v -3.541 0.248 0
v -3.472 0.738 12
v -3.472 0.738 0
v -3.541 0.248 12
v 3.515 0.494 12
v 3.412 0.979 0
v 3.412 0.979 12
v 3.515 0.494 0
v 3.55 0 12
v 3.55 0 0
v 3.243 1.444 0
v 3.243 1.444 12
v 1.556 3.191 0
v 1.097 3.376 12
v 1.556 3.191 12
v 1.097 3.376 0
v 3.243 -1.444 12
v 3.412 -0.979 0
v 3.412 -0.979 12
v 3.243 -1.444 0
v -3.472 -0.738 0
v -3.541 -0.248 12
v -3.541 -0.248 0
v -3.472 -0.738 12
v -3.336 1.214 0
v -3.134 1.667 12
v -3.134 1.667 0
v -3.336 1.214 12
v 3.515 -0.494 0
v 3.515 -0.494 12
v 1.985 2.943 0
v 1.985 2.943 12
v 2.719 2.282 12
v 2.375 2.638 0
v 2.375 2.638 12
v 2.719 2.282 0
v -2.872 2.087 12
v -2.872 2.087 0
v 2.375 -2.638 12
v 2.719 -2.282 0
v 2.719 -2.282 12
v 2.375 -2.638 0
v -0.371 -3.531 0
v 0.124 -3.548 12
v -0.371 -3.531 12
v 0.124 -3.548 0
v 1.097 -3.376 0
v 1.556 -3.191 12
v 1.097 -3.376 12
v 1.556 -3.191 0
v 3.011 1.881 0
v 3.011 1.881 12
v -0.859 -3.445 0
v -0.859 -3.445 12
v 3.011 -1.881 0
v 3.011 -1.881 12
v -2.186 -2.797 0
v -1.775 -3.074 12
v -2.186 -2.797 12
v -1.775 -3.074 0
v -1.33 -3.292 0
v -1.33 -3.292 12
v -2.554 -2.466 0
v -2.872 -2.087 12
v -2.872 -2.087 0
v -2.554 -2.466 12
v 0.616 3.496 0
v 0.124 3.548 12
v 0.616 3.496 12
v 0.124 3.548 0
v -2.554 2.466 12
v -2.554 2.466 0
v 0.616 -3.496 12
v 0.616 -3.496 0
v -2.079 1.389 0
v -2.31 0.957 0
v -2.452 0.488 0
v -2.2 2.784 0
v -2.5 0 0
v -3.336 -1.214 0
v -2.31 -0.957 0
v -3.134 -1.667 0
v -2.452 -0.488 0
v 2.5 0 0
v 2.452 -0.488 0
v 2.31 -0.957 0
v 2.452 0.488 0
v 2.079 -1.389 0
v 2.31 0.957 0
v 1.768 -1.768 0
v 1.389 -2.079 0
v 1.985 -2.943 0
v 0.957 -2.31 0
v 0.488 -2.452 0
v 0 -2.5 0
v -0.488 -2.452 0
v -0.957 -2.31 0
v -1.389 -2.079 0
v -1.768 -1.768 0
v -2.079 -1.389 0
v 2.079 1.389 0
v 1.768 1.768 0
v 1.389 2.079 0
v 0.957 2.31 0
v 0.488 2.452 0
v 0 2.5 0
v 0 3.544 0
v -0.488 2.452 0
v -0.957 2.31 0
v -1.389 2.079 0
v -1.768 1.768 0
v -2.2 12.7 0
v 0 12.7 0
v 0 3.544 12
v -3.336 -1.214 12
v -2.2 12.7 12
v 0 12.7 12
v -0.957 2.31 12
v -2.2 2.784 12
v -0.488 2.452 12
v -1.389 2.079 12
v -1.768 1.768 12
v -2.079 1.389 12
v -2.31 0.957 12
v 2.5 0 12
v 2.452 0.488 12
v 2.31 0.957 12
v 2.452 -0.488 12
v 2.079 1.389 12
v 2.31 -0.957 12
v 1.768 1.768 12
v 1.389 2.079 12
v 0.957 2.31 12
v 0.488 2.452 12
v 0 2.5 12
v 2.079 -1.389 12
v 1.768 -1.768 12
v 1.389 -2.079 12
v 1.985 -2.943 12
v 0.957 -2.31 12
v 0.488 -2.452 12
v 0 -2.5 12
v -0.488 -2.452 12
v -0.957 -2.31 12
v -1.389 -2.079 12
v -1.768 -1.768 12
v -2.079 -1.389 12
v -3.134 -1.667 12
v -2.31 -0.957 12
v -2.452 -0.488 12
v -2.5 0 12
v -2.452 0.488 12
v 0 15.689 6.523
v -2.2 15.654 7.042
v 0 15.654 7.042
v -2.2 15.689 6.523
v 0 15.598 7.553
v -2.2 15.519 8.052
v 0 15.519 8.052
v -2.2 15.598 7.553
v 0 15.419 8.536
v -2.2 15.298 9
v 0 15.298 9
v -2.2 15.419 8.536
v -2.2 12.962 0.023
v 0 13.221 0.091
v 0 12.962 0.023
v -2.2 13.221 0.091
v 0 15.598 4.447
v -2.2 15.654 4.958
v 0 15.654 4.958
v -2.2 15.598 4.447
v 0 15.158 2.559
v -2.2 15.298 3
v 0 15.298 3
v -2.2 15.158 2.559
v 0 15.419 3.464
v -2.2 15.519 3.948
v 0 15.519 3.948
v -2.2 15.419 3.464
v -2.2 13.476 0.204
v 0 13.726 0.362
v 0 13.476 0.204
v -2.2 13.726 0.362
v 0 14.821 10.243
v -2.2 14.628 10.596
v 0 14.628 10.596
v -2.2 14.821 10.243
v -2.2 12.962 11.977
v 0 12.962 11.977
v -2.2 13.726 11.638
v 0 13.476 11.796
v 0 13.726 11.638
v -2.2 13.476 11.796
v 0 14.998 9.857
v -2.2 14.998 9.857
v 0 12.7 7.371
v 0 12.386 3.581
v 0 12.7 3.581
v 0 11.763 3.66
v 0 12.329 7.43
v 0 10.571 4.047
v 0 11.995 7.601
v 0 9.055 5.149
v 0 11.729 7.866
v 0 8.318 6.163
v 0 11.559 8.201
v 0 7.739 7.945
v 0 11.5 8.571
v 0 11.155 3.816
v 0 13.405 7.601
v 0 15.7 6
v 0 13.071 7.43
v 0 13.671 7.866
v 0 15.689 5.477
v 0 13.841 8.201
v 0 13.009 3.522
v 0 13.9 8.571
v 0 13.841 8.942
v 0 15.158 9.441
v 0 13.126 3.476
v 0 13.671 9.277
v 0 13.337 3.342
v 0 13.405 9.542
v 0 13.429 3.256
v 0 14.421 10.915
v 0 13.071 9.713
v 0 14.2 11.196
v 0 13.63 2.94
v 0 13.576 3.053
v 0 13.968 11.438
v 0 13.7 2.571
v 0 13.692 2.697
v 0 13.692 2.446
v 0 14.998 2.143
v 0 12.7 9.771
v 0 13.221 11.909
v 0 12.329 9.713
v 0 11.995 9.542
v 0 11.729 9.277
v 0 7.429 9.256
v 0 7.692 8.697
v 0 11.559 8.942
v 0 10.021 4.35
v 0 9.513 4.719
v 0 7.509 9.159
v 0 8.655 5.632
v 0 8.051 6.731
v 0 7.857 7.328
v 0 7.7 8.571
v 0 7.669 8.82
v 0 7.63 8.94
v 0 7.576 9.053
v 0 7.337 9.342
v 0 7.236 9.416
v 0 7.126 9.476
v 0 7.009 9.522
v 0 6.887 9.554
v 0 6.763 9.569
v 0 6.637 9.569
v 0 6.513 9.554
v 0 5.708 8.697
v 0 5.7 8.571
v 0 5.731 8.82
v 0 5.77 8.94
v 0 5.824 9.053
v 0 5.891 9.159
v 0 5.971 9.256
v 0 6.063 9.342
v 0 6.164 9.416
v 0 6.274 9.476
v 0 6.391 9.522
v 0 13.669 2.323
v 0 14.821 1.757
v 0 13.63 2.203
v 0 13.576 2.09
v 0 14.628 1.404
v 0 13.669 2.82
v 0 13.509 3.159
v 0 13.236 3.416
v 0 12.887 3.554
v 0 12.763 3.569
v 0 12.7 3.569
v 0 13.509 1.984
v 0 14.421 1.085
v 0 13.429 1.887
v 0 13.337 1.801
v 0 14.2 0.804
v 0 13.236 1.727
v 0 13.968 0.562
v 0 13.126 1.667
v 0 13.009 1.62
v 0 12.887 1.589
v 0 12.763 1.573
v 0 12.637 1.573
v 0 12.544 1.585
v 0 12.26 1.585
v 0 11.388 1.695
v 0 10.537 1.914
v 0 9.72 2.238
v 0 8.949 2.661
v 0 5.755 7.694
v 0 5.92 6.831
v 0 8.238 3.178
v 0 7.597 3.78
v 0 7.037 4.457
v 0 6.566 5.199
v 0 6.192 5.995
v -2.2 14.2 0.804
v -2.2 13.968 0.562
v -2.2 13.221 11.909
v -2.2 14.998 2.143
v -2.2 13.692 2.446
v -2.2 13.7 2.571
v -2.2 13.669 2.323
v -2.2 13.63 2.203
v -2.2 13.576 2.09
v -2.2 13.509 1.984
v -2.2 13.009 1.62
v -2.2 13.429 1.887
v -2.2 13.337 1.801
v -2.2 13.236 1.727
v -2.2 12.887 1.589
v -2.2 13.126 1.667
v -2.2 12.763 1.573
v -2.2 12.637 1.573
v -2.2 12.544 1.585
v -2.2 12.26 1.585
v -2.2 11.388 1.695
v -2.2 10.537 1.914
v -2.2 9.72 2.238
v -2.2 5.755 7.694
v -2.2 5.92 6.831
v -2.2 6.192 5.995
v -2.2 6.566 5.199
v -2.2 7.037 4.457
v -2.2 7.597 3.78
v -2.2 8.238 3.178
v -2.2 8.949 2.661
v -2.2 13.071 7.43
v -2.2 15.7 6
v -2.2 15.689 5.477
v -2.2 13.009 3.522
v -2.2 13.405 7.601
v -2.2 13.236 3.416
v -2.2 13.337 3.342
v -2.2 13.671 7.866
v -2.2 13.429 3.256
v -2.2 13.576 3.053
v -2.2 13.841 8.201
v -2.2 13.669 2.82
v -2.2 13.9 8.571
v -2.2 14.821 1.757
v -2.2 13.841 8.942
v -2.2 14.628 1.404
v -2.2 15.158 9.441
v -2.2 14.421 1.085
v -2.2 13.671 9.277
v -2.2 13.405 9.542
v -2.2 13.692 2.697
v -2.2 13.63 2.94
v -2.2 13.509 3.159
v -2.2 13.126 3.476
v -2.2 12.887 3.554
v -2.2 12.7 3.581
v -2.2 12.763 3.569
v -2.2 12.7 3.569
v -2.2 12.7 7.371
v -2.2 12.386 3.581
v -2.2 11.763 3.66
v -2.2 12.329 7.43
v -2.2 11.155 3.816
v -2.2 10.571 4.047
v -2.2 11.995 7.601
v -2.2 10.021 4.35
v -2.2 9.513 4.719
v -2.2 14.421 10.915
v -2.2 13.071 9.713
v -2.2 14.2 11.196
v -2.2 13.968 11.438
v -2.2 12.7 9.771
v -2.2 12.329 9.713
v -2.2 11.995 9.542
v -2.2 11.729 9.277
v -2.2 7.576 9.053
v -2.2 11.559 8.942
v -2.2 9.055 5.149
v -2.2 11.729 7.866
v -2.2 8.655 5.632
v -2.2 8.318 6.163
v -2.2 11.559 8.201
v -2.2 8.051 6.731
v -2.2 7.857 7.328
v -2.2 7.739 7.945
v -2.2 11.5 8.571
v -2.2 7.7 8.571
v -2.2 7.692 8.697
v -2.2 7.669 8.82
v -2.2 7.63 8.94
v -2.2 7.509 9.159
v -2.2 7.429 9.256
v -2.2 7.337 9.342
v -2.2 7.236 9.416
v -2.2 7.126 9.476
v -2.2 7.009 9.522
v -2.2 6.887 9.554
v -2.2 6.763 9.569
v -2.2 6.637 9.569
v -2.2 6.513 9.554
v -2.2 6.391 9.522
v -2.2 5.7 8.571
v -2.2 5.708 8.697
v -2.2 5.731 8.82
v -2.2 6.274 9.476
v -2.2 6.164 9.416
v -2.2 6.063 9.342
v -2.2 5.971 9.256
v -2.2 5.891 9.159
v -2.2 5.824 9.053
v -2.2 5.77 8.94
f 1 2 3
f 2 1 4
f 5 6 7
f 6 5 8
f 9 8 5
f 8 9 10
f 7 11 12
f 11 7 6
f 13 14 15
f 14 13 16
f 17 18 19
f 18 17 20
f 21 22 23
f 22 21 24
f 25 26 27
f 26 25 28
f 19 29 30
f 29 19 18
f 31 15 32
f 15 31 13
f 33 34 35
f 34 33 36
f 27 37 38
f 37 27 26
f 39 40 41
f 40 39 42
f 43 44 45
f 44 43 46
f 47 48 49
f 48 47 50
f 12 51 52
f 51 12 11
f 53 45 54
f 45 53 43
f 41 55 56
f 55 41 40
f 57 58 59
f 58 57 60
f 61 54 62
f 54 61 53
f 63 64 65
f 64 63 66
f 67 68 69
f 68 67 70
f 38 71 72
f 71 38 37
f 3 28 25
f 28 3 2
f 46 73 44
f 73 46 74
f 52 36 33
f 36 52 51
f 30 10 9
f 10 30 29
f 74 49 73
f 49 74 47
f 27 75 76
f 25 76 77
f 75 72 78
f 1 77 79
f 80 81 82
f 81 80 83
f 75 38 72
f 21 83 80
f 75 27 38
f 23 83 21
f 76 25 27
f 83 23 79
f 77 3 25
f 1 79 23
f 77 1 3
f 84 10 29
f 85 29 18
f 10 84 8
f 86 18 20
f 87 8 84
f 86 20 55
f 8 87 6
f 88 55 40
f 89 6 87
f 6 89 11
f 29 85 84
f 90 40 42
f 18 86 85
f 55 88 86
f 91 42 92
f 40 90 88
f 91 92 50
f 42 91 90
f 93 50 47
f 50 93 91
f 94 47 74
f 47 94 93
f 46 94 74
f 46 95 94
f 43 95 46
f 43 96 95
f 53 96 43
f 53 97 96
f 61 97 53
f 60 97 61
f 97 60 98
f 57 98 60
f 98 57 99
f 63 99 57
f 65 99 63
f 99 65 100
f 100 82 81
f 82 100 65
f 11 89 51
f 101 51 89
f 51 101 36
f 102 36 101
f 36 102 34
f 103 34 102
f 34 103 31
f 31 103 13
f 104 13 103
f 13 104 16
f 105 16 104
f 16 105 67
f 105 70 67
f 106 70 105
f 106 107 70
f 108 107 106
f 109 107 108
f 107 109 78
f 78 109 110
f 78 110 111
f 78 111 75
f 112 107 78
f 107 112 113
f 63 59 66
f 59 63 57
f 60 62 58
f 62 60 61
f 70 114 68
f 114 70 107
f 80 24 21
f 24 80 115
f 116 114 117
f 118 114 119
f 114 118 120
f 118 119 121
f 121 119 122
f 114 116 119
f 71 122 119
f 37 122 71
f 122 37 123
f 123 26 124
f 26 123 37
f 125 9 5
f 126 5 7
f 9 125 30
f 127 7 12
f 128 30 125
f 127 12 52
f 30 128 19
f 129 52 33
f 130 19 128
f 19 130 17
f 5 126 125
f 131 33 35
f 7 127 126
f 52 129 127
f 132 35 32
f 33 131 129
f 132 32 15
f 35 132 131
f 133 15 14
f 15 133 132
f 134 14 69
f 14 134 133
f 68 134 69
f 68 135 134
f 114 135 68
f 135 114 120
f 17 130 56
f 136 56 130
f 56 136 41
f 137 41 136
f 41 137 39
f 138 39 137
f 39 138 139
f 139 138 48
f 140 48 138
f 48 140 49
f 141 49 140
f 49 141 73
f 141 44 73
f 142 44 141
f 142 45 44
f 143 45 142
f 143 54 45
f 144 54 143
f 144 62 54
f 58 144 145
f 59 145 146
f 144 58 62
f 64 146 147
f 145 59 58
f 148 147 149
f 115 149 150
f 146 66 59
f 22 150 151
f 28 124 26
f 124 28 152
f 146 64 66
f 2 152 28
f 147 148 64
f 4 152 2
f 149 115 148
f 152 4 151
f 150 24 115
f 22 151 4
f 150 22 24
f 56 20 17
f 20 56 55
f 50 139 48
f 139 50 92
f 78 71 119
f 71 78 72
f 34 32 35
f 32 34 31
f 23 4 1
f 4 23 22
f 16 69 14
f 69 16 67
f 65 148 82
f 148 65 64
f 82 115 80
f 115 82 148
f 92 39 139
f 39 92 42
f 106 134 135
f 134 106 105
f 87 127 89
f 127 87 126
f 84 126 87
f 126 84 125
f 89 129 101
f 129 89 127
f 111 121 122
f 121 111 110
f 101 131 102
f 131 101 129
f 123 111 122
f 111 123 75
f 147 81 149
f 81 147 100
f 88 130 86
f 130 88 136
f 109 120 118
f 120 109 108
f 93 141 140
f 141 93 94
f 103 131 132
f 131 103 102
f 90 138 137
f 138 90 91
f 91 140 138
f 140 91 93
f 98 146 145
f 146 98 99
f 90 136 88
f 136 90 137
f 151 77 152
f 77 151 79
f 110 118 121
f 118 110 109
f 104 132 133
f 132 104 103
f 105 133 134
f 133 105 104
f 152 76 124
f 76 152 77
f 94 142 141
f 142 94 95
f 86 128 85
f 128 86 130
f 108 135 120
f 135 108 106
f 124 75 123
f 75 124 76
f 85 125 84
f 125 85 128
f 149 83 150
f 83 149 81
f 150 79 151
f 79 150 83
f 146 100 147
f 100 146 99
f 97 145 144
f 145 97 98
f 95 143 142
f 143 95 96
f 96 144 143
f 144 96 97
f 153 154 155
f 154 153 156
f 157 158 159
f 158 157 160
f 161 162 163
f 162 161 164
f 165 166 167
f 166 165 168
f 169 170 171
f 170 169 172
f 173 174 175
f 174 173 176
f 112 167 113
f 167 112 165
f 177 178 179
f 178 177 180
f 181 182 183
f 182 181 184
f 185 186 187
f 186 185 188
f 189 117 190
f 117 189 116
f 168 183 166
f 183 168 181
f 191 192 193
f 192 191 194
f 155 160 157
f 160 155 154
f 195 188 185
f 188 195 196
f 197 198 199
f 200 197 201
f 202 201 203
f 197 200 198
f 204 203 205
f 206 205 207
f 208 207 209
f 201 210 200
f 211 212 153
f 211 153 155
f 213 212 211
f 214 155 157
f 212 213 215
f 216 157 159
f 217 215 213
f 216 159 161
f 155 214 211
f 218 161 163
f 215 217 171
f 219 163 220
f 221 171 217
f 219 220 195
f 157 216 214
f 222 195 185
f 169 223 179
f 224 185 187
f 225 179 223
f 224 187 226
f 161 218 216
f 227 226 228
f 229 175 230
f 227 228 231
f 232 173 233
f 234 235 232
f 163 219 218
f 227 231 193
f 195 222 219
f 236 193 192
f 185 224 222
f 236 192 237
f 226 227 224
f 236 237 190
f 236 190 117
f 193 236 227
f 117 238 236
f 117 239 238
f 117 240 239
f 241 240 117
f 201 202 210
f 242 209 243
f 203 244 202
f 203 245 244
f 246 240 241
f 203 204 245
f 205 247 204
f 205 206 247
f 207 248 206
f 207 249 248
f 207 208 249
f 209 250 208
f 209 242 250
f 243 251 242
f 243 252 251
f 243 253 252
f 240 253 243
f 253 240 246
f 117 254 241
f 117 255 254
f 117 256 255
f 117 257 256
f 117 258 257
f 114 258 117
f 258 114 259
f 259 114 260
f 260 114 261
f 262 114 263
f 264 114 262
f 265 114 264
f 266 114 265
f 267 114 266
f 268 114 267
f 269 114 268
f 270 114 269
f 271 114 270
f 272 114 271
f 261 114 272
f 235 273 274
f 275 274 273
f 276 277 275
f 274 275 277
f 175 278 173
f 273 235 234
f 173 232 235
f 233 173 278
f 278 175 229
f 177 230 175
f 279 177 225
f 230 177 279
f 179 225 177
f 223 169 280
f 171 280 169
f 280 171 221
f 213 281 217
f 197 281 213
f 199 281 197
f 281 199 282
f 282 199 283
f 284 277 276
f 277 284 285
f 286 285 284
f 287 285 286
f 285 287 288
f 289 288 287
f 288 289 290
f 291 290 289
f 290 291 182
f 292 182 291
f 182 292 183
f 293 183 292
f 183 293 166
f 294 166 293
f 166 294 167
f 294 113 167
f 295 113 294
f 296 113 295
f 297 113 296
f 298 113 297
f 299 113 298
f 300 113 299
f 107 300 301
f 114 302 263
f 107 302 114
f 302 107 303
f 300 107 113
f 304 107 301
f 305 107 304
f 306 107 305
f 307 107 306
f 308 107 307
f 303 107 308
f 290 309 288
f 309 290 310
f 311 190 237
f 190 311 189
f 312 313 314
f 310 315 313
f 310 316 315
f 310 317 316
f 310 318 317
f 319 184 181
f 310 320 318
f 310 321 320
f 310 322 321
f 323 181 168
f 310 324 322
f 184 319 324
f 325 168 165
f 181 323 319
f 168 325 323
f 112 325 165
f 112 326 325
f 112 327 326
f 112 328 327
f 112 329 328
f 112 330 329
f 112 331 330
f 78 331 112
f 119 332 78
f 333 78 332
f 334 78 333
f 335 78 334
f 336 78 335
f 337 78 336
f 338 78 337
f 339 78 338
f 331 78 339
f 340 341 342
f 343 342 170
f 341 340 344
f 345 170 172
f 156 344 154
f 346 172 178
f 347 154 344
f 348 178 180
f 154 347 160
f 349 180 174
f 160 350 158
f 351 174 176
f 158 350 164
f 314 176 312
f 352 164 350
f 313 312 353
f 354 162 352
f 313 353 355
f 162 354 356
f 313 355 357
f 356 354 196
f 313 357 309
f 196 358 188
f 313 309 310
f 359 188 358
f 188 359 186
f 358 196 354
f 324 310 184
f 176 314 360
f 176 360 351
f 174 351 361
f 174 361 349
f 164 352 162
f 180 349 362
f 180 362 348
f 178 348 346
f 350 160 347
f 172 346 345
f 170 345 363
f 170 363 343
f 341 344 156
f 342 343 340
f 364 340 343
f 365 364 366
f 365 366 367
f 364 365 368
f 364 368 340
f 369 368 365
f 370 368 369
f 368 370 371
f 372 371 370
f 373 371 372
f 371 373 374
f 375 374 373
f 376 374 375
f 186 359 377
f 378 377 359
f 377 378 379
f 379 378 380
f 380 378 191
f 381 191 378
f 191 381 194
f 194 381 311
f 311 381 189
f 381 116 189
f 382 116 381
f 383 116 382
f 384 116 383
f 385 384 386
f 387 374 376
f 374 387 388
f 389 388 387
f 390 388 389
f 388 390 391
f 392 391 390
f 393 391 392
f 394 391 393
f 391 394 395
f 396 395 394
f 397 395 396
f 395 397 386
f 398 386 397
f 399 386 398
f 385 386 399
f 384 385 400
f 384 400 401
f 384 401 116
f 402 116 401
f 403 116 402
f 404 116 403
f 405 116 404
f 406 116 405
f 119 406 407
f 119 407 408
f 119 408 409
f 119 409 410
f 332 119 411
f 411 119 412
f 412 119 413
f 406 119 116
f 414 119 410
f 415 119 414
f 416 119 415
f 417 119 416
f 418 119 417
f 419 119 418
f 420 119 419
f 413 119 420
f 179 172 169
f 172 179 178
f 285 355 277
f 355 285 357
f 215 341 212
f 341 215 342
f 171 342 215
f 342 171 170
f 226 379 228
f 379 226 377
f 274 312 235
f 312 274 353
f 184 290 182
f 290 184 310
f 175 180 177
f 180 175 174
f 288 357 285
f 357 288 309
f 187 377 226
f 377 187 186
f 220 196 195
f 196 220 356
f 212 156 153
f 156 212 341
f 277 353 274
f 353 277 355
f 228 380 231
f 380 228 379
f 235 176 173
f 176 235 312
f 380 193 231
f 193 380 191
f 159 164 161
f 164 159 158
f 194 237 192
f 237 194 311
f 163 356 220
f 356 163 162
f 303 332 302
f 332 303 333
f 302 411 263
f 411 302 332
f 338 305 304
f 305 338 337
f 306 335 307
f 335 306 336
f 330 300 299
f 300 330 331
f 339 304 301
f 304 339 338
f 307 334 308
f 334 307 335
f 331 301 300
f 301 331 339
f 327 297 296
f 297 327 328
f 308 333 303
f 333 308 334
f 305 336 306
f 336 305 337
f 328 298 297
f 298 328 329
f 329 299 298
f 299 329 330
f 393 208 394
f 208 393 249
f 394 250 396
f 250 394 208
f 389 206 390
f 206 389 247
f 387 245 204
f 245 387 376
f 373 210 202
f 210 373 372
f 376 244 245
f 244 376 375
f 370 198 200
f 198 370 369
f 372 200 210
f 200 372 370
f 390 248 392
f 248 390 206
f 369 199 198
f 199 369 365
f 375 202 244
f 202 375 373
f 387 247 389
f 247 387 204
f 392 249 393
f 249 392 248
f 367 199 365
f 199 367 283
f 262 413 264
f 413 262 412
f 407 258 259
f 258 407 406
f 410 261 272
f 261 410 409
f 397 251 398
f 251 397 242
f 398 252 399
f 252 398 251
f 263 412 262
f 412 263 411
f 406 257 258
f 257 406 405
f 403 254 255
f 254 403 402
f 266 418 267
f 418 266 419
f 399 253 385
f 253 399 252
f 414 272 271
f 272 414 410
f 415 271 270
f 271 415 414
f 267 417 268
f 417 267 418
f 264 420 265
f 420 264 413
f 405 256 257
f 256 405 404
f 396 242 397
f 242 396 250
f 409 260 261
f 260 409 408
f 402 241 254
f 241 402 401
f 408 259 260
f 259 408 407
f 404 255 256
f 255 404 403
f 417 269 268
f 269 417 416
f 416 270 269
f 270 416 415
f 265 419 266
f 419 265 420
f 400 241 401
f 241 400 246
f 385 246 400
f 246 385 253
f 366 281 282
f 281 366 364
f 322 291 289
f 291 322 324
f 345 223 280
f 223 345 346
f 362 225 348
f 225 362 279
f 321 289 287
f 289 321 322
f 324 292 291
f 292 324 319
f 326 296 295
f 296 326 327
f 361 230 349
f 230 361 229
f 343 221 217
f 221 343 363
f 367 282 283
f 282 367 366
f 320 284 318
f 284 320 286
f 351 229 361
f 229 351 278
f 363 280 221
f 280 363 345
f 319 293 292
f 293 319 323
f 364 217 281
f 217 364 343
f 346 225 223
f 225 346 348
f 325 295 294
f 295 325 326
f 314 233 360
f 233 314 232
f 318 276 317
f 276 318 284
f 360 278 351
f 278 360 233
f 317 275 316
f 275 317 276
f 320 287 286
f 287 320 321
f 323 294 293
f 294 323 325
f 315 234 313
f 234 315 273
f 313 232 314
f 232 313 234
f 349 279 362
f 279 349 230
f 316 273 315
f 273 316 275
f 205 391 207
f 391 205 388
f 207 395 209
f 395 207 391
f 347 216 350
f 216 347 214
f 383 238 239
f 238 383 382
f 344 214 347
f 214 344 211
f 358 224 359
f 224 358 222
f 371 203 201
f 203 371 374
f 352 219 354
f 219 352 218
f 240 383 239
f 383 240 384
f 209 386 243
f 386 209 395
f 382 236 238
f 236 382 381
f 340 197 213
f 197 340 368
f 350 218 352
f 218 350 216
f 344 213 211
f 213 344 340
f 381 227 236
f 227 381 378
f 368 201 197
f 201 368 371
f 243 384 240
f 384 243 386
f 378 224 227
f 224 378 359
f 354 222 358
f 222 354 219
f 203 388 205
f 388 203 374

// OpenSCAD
// file: fpv_camera_mount.scad
module fpv_camera_mount_arc(depth, screwwidth, radius = 6)
{
	res = $preview ? 10 : 50;
	intersection() {
		outrad = screwwidth / 2 + radius;
		inrad = radius - screwwidth / 2;
		difference() {
			cylinder(depth, r = outrad, $fn = res);
			cylinder(depth, r = inrad, $fn = res);
		}
		arcextend = screwwidth / 2;
		cube([outrad + arcextend, outrad + arcextend, depth]);
	}
	translate([radius, 0, 0]) cylinder(depth, r = screwwidth / 2, $fn = res);
	translate([0, radius, 0]) cylinder(depth, r = screwwidth / 2, $fn = res);
}

module fpv_camera_mount_hole(depth, screwwidth = 2)
{
	res = $preview ? 10 : 20;
	cylinder(depth, r = screwwidth * 1.2 / 2, $fn = res);
}

module fpv_camera_mount(depth, screwwidth = 2)
{
	fpv_camera_mount_full_6mm(depth, screwwidth);
	rotate([0, 0, 160]) fpv_camera_mount_half_9mm(depth, screwwidth);
}

module fpv_camera_mount_full(depth, screwwidth = 2)
{
	fpv_camera_mount_full_6mm(depth, screwwidth);
	fpv_camera_mount_full_9mm(depth, screwwidth);
}

module fpv_camera_mount_half_6mm(depth, screwwidth = 2)
{
	fpv_camera_mount_hole(depth, screwwidth);
	fpv_camera_mount_arc(depth, screwwidth, 6);
}

module fpv_camera_mount_full_6mm(depth, screwwidth = 2)
{
	rotate([0, 0, 90]) fpv_camera_mount_half_6mm(depth, screwwidth);
	rotate([0, 0, 270]) fpv_camera_mount_half_6mm(depth, screwwidth);
}

module fpv_camera_mount_half_9mm(depth, screwwidth = 2)
{
	fpv_camera_mount_hole(depth, screwwidth);
	fpv_camera_mount_arc(depth, screwwidth, 9);
}

module fpv_camera_mount_full_9mm(depth, screwwidth = 2, angle_offset = -20)
{
	rotate([0, 0, angle_offset]) fpv_camera_mount_half_9mm(depth, screwwidth);
	rotate([0, 0, 180 + angle_offset]) fpv_camera_mount_half_9mm(depth, screwwidth);
}
// main file
use <fpv_camera_mount.scad>

anti_warp = .09;
filament_width = 1.75;

function anti_warp_widen(v) = v + (filament_width * anti_warp) * 2;
function anti_warp_shrink(v) = v - (filament_width * anti_warp) * 2;

height = 12;
offset = 8;

standoff_width = 5;
standoff_wall_thickness = 1.05;

wall_thickness = 2.2;

$fs = $preview ? 1 : 0.5;
$fa = $preview ? 10 : 5;

module standoff() {
	difference() {
		cylinder(h = height, d = standoff_width + 2 * standoff_wall_thickness);
		cylinder(h = height, d = standoff_width);
	}
}

module main() {
	difference() {
		standoff();
		cylinder(h = height, d = standoff_width);
	}
	difference() {
		translate([-wall_thickness, 0]) {
			difference() {
				union() {
					translate([0, offset + wall_thickness + standoff_width / 2, height / 2]) rotate([0, 90]) {
						scale([1,0.5]) cylinder(h = wall_thickness, d = height);
					}
					cube([wall_thickness, offset + wall_thickness + standoff_width / 2, height]);
				}
				translate([0, offset + wall_thickness + standoff_width / 2, height / 1.4]) rotate([0, 90]) {
					rotate([0, 0, 270]) fpv_camera_mount_half_6mm(wall_thickness);
				}
			}
		}
		cylinder(h = height, d = standoff_width);
	}
}

main();
